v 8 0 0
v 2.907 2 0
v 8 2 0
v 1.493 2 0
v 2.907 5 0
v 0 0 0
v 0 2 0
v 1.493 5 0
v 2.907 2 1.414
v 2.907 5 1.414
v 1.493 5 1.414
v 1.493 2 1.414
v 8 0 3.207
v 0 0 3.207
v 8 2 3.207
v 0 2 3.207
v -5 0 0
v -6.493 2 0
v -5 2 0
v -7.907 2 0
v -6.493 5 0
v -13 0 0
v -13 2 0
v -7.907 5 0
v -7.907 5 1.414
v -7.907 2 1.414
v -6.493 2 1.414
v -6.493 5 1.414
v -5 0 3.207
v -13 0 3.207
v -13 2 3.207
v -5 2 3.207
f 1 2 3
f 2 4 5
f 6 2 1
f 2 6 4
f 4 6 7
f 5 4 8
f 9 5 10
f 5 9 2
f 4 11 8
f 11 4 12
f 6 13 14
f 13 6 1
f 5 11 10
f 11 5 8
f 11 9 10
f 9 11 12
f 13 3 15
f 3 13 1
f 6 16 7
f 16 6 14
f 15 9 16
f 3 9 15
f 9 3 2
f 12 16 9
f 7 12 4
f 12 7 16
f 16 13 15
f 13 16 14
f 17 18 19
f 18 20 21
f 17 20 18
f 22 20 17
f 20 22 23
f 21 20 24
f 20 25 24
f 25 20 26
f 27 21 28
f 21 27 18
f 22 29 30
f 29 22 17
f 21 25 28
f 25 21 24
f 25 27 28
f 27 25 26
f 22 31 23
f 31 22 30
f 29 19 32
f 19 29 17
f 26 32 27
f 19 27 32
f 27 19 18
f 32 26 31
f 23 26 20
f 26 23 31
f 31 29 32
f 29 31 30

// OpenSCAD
$fa=6;
$fs=.5;
/*
t=0.8;
module half(){
linear_extrude(5){
	translate([0,-t])square([12.7,t]);
	translate([12.7,-t])square([t,t+3.3+t]);
	translate([12.7+t,3.3])intersection(){
		rotate(45)square(3,center=true);
		scale([-1,1])square([10,t]);
	}
}
linear_extrude(2/sqrt(2))
	translate([10.5-2/sqrt(2)/2,0])square([2/sqrt(2),3.3]);
linear_extrude(t)
	translate([4.5,0]){
		square([12.7-4.5-t,3.3-1.6-.2]);
		square([7-4.5,3.3]);
	}
}
half();scale([-1,1])half();
*/

module main(){
	linear_extrude(2/sqrt(2))translate([1.2+(2-2/sqrt(2))/2,0])square([2/sqrt(2),5]);
	linear_extrude(3.5-(2-2/sqrt(2))/2)square([8,2]);
}

main();
scale([-1,1])translate([5,0,0])main();
